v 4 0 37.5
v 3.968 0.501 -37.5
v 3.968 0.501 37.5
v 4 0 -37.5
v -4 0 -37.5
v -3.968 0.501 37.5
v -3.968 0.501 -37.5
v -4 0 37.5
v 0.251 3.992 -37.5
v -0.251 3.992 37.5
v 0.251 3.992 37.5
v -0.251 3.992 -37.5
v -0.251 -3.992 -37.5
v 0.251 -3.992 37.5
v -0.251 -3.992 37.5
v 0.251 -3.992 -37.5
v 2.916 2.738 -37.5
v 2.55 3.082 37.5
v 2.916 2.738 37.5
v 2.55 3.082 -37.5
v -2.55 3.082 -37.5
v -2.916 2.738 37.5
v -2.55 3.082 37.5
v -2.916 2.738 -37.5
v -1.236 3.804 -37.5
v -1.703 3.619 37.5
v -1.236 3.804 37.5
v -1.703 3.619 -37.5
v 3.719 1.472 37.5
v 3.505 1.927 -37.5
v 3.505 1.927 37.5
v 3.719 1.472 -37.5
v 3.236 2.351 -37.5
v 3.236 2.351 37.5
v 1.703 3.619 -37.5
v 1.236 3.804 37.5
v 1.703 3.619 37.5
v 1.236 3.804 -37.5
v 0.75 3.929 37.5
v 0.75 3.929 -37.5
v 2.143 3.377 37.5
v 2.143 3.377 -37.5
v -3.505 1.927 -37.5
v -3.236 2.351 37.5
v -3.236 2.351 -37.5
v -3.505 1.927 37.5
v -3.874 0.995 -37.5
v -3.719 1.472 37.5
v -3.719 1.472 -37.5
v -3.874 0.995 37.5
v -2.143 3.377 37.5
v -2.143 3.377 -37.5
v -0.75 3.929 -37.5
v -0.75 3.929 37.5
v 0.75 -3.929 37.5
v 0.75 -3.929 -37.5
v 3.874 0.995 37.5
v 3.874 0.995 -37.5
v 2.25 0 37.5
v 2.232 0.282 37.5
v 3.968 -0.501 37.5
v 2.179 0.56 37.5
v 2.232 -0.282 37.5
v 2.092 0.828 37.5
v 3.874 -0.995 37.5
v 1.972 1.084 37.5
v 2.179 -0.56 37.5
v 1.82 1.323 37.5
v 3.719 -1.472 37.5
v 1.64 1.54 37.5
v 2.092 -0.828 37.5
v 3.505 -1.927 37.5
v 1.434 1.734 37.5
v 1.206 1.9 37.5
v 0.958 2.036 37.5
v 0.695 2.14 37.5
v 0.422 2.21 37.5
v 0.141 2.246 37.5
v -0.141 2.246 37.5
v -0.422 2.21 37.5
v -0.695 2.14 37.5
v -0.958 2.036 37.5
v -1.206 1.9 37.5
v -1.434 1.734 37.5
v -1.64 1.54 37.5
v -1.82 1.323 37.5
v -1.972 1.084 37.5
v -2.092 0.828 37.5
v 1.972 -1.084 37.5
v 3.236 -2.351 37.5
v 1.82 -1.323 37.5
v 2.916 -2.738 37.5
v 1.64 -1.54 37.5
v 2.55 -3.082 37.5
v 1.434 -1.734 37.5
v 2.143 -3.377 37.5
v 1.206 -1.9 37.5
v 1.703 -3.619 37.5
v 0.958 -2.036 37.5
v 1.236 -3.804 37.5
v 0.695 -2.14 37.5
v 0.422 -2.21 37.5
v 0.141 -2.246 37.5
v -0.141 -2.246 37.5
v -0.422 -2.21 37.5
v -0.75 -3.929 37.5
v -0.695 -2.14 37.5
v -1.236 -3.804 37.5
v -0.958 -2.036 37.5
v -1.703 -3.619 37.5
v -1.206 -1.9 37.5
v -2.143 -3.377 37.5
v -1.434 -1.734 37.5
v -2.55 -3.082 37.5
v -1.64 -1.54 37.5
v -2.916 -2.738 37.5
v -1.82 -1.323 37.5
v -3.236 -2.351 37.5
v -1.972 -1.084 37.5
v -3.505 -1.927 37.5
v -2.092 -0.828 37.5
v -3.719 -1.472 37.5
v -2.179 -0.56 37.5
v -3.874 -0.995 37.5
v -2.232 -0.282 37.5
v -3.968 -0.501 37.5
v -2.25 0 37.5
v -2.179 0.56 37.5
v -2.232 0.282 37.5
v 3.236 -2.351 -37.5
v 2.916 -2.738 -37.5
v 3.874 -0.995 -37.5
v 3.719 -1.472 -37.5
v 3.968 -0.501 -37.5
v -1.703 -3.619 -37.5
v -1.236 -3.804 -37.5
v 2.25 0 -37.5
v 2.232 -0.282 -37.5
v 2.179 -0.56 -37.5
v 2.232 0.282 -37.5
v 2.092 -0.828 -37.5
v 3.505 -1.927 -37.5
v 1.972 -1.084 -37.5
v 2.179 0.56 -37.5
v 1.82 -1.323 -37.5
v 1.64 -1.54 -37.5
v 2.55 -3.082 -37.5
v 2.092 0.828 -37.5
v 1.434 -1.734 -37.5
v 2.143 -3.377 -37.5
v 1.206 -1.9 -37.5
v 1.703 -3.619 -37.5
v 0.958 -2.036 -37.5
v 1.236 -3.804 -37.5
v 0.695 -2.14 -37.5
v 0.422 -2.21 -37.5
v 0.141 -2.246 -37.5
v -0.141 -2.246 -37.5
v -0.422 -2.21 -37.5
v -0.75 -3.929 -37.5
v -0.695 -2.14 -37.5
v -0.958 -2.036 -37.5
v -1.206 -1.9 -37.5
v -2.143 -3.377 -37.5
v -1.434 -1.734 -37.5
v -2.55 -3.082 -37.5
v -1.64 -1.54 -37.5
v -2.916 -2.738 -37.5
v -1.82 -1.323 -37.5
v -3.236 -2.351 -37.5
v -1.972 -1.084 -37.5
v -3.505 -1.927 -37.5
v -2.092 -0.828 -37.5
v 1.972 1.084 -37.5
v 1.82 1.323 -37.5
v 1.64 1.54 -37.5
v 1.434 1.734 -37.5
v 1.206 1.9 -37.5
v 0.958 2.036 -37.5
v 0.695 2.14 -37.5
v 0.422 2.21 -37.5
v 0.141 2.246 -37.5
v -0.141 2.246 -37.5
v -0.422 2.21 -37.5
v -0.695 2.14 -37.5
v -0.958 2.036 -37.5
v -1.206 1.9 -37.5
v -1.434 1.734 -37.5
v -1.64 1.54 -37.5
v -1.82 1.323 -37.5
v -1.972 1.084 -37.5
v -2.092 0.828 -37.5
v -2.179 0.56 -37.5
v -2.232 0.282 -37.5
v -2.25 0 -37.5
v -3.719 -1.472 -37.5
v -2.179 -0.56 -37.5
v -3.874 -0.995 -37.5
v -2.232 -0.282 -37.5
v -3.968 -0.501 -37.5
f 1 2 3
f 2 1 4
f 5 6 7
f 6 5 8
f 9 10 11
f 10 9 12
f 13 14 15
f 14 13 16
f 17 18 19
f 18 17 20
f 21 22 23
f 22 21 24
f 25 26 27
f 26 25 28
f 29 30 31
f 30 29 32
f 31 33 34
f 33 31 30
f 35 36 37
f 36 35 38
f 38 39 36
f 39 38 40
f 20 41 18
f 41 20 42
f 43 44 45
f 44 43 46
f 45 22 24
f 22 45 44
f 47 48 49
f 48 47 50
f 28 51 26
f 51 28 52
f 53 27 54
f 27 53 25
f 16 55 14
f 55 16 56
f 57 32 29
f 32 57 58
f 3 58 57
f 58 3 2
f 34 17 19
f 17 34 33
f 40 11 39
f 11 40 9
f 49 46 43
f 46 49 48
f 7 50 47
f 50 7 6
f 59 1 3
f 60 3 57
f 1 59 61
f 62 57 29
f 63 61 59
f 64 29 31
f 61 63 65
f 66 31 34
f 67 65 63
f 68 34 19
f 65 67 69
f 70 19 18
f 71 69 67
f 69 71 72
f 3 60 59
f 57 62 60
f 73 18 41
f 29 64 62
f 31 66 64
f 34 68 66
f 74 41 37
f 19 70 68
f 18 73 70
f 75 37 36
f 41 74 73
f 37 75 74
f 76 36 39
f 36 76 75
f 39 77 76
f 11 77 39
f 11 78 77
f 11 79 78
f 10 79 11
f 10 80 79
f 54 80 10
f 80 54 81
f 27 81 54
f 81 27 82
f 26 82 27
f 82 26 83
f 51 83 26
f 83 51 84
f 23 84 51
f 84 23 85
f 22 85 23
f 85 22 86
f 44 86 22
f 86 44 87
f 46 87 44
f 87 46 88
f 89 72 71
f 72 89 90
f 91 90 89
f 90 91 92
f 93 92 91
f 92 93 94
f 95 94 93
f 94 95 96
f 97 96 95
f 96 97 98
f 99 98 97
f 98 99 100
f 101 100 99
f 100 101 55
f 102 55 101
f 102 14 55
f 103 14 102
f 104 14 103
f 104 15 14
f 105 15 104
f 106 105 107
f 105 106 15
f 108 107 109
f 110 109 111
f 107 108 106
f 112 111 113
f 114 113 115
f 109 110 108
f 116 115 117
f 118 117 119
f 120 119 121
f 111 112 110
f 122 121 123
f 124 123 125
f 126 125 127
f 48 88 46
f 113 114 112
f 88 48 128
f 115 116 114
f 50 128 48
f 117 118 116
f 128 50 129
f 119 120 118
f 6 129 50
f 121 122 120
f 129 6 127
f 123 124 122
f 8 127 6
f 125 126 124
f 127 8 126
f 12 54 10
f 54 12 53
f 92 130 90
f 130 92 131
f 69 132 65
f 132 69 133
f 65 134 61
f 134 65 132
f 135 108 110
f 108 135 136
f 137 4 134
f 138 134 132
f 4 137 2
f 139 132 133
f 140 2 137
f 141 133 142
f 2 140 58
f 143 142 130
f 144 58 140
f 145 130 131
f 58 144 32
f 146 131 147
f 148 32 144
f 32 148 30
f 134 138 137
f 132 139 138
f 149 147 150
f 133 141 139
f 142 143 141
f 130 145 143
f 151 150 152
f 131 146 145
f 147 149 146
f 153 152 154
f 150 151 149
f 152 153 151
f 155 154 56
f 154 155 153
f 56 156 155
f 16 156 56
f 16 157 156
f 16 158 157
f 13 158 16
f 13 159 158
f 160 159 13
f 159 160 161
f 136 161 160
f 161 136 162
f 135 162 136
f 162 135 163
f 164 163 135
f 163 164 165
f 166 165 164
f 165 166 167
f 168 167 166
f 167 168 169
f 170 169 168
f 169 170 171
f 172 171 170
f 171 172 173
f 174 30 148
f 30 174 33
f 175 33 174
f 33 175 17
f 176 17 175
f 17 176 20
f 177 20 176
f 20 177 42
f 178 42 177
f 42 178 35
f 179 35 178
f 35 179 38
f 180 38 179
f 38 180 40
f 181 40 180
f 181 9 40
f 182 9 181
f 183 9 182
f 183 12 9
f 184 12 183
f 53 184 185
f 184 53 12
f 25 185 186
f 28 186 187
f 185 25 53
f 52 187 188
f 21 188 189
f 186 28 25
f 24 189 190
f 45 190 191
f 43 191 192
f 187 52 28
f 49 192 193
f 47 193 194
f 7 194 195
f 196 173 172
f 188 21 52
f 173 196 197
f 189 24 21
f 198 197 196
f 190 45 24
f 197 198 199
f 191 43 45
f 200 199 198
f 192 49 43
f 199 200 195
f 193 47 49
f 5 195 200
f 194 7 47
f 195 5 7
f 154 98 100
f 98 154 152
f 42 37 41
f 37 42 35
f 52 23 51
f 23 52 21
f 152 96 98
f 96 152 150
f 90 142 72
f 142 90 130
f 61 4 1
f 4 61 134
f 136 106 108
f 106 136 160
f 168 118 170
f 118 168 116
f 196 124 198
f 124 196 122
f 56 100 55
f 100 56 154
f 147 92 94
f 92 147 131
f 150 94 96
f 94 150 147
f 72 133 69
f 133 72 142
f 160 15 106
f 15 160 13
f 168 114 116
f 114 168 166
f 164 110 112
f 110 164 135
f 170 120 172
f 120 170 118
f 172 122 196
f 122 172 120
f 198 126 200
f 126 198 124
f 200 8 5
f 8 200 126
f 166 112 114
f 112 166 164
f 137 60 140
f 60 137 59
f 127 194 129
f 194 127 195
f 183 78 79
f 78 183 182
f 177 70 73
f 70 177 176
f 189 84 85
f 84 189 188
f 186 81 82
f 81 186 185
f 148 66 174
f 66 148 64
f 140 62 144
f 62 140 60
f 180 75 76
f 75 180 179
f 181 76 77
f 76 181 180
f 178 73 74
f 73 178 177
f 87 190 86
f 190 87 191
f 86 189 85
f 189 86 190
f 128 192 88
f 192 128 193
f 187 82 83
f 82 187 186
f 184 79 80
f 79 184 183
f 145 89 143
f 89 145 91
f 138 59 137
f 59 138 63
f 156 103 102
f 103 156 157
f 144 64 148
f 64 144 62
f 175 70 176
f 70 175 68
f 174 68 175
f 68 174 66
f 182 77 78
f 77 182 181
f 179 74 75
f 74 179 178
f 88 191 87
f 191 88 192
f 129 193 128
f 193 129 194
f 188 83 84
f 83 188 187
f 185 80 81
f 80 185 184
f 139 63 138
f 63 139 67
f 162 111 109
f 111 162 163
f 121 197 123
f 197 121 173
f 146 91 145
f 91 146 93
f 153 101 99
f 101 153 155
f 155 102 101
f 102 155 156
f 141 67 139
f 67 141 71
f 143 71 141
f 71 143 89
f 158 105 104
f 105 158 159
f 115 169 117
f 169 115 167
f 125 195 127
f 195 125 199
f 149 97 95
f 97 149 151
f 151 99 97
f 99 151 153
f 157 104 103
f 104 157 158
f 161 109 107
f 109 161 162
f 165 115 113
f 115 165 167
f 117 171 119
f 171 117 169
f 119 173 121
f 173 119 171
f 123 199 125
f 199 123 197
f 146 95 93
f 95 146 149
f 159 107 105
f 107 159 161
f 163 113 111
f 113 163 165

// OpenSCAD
$fn = 50;


difference() {
	union() {
		translate(v = [0, 0, -37.5000000000]) {
			cylinder(h = 75, r = 4.0000000000);
		}
	}
	union() {
		translate(v = [0, 0, -100.0000000000]) {
			cylinder(h = 200, r = 2.2500000000);
		}
	}
}
